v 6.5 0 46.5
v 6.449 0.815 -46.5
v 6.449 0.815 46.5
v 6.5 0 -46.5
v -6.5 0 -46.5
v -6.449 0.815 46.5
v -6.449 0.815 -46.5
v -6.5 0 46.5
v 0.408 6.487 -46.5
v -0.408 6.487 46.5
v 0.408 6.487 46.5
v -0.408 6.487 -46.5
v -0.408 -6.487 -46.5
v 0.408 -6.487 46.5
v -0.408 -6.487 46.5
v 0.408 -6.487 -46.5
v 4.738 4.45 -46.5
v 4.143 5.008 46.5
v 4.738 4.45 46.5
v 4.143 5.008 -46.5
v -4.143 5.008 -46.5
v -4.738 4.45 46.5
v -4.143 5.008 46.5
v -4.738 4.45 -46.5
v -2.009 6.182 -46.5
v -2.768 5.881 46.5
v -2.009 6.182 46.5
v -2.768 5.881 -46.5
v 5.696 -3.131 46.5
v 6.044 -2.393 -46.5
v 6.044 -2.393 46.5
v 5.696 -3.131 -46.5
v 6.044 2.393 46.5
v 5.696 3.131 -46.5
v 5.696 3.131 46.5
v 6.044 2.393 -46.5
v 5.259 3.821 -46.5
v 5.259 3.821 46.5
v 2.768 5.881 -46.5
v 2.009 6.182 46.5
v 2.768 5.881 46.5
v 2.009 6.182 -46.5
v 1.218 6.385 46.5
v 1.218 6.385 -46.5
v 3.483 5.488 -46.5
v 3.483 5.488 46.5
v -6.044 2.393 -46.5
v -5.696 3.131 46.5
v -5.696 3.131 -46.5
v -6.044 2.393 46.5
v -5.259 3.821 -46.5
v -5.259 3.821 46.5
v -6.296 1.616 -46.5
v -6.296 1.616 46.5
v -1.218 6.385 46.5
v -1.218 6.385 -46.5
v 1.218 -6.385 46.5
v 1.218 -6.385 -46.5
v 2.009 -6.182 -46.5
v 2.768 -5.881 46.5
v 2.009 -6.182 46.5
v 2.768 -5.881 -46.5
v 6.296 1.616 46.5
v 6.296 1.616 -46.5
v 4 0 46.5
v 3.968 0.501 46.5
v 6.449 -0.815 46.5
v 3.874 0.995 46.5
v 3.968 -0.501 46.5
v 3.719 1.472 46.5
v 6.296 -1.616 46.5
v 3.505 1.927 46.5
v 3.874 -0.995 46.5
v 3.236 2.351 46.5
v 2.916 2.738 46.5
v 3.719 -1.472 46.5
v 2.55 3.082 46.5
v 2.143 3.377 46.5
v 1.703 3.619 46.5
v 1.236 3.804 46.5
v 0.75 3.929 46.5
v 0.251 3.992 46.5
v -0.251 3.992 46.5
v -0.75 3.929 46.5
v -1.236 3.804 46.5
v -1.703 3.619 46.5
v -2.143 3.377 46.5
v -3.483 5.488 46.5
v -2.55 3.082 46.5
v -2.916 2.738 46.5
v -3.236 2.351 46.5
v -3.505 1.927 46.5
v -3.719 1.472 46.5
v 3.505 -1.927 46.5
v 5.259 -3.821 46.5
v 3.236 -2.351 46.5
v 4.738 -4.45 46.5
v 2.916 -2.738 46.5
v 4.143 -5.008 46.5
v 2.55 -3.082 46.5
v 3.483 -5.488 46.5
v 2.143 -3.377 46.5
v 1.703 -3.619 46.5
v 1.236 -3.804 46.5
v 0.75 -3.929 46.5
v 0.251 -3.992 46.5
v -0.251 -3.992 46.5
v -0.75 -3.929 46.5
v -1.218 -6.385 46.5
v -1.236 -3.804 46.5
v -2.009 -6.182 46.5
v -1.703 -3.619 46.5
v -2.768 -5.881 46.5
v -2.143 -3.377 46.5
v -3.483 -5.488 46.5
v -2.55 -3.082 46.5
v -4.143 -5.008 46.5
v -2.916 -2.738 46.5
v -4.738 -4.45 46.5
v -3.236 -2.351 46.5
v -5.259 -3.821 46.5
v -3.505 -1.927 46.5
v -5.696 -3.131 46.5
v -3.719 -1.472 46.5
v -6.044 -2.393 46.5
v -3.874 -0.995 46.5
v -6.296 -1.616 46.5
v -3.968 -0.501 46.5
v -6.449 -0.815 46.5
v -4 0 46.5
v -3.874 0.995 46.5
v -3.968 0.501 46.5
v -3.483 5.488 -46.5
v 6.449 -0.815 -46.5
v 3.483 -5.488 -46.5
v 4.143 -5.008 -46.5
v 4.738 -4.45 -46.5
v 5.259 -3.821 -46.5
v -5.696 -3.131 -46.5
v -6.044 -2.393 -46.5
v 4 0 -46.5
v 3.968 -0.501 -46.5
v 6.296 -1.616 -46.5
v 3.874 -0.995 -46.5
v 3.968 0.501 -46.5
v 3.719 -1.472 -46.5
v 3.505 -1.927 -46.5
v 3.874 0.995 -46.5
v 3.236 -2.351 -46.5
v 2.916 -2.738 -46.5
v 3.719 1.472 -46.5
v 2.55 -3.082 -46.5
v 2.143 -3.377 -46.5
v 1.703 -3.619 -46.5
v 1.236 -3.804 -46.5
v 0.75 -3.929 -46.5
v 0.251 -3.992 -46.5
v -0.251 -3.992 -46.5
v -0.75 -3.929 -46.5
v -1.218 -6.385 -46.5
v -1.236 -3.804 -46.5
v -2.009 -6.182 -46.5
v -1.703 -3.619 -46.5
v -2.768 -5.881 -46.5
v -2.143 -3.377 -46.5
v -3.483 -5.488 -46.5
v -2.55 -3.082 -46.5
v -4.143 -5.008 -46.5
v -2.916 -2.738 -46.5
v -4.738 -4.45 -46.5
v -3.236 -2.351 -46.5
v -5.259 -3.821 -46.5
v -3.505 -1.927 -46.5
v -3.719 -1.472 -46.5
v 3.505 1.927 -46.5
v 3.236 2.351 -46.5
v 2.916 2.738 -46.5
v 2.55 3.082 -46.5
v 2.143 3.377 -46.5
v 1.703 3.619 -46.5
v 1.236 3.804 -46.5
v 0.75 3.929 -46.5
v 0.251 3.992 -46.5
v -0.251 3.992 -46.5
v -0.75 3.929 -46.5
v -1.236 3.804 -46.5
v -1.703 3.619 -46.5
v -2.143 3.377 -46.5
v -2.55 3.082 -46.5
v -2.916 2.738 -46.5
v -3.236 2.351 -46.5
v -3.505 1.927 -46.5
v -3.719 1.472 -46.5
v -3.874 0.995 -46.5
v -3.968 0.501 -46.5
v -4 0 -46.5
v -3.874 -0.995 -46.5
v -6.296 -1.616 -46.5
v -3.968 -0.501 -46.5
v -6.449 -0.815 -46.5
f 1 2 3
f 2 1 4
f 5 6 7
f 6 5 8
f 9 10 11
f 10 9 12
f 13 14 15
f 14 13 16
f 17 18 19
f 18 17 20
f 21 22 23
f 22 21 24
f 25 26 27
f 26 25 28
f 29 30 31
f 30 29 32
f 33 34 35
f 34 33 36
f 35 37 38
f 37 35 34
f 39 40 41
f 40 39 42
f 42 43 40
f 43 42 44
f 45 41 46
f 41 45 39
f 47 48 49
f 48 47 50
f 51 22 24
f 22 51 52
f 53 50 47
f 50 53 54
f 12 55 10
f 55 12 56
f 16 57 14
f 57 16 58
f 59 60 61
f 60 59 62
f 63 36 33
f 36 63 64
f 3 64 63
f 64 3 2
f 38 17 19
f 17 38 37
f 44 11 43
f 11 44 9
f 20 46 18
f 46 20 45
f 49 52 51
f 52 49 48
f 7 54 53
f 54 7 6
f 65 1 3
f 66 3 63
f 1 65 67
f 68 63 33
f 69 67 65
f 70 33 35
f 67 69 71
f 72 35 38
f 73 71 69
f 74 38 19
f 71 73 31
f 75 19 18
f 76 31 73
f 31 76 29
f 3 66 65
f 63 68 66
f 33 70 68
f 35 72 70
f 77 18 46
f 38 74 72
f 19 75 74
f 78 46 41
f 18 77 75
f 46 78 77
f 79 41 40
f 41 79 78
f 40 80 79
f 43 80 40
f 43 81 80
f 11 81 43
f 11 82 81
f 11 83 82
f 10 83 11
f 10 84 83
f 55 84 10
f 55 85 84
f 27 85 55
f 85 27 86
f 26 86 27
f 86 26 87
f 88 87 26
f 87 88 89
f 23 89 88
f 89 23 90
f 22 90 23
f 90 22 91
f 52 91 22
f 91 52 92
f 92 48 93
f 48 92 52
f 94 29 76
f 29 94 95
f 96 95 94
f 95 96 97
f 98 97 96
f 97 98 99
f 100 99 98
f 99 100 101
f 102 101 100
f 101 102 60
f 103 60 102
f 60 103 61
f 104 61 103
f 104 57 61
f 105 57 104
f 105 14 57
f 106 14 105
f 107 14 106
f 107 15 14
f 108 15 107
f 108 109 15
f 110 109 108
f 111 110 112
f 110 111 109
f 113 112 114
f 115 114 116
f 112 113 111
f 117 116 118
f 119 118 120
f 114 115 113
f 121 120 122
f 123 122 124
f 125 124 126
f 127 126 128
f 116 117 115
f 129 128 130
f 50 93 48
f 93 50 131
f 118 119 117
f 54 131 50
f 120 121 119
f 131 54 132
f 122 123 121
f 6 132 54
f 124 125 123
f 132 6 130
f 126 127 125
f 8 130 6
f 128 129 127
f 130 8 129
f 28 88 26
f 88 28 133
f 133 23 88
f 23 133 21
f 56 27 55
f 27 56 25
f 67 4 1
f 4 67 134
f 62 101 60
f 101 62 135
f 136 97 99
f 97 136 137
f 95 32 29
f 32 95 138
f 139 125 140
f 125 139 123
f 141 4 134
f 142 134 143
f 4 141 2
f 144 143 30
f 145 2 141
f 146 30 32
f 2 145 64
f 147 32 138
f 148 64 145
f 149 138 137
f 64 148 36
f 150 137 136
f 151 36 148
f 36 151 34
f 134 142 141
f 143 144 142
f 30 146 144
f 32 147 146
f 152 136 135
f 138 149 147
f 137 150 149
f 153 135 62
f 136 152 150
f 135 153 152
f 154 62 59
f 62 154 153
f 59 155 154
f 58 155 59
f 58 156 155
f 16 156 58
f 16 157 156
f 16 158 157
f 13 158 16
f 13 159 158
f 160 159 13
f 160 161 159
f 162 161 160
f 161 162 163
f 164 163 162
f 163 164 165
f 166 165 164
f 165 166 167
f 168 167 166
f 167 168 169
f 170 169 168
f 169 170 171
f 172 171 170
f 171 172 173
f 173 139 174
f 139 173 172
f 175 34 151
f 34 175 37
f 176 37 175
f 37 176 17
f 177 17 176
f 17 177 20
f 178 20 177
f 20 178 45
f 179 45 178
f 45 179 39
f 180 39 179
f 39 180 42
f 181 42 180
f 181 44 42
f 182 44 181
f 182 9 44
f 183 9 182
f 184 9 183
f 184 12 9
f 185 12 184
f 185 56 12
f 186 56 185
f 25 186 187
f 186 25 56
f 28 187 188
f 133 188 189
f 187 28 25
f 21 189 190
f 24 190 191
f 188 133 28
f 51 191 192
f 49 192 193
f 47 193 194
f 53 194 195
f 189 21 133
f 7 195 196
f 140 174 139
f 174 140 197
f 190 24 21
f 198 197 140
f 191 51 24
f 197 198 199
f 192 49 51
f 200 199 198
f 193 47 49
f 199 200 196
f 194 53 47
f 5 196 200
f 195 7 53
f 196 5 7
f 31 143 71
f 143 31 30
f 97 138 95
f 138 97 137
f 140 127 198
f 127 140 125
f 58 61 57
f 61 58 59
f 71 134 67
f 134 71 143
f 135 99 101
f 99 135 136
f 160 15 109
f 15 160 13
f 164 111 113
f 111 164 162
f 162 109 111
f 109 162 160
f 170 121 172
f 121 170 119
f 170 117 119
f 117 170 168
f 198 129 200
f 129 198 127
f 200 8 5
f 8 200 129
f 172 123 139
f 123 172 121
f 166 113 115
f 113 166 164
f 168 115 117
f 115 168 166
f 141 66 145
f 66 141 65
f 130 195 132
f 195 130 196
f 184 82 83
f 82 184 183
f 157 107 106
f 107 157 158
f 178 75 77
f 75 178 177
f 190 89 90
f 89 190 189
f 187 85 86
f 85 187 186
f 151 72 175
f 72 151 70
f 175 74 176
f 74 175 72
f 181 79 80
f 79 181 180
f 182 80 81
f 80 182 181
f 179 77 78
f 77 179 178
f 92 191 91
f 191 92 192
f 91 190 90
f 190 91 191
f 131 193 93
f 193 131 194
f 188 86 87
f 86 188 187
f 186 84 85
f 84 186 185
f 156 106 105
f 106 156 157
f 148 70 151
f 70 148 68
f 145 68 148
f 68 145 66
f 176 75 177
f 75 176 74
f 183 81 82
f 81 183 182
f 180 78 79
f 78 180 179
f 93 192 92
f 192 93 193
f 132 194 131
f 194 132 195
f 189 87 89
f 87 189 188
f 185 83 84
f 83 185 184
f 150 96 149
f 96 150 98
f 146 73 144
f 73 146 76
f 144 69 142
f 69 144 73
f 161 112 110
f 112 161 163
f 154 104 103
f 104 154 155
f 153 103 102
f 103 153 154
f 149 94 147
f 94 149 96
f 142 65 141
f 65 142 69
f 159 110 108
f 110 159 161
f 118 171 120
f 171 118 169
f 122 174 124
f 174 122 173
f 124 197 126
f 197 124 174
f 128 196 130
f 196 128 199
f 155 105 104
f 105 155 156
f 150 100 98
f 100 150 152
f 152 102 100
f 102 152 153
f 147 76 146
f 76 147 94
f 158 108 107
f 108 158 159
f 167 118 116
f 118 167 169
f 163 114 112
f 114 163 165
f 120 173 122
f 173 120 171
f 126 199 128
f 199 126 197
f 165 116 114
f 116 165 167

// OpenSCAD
$fn = 50;


difference() {
	union() {
		translate(v = [0, 0, -46.5000000000]) {
			cylinder(h = 93, r = 6.5000000000);
		}
	}
	union() {
		translate(v = [0, 0, -100.0000000000]) {
			cylinder(h = 200, r = 4);
		}
	}
}
